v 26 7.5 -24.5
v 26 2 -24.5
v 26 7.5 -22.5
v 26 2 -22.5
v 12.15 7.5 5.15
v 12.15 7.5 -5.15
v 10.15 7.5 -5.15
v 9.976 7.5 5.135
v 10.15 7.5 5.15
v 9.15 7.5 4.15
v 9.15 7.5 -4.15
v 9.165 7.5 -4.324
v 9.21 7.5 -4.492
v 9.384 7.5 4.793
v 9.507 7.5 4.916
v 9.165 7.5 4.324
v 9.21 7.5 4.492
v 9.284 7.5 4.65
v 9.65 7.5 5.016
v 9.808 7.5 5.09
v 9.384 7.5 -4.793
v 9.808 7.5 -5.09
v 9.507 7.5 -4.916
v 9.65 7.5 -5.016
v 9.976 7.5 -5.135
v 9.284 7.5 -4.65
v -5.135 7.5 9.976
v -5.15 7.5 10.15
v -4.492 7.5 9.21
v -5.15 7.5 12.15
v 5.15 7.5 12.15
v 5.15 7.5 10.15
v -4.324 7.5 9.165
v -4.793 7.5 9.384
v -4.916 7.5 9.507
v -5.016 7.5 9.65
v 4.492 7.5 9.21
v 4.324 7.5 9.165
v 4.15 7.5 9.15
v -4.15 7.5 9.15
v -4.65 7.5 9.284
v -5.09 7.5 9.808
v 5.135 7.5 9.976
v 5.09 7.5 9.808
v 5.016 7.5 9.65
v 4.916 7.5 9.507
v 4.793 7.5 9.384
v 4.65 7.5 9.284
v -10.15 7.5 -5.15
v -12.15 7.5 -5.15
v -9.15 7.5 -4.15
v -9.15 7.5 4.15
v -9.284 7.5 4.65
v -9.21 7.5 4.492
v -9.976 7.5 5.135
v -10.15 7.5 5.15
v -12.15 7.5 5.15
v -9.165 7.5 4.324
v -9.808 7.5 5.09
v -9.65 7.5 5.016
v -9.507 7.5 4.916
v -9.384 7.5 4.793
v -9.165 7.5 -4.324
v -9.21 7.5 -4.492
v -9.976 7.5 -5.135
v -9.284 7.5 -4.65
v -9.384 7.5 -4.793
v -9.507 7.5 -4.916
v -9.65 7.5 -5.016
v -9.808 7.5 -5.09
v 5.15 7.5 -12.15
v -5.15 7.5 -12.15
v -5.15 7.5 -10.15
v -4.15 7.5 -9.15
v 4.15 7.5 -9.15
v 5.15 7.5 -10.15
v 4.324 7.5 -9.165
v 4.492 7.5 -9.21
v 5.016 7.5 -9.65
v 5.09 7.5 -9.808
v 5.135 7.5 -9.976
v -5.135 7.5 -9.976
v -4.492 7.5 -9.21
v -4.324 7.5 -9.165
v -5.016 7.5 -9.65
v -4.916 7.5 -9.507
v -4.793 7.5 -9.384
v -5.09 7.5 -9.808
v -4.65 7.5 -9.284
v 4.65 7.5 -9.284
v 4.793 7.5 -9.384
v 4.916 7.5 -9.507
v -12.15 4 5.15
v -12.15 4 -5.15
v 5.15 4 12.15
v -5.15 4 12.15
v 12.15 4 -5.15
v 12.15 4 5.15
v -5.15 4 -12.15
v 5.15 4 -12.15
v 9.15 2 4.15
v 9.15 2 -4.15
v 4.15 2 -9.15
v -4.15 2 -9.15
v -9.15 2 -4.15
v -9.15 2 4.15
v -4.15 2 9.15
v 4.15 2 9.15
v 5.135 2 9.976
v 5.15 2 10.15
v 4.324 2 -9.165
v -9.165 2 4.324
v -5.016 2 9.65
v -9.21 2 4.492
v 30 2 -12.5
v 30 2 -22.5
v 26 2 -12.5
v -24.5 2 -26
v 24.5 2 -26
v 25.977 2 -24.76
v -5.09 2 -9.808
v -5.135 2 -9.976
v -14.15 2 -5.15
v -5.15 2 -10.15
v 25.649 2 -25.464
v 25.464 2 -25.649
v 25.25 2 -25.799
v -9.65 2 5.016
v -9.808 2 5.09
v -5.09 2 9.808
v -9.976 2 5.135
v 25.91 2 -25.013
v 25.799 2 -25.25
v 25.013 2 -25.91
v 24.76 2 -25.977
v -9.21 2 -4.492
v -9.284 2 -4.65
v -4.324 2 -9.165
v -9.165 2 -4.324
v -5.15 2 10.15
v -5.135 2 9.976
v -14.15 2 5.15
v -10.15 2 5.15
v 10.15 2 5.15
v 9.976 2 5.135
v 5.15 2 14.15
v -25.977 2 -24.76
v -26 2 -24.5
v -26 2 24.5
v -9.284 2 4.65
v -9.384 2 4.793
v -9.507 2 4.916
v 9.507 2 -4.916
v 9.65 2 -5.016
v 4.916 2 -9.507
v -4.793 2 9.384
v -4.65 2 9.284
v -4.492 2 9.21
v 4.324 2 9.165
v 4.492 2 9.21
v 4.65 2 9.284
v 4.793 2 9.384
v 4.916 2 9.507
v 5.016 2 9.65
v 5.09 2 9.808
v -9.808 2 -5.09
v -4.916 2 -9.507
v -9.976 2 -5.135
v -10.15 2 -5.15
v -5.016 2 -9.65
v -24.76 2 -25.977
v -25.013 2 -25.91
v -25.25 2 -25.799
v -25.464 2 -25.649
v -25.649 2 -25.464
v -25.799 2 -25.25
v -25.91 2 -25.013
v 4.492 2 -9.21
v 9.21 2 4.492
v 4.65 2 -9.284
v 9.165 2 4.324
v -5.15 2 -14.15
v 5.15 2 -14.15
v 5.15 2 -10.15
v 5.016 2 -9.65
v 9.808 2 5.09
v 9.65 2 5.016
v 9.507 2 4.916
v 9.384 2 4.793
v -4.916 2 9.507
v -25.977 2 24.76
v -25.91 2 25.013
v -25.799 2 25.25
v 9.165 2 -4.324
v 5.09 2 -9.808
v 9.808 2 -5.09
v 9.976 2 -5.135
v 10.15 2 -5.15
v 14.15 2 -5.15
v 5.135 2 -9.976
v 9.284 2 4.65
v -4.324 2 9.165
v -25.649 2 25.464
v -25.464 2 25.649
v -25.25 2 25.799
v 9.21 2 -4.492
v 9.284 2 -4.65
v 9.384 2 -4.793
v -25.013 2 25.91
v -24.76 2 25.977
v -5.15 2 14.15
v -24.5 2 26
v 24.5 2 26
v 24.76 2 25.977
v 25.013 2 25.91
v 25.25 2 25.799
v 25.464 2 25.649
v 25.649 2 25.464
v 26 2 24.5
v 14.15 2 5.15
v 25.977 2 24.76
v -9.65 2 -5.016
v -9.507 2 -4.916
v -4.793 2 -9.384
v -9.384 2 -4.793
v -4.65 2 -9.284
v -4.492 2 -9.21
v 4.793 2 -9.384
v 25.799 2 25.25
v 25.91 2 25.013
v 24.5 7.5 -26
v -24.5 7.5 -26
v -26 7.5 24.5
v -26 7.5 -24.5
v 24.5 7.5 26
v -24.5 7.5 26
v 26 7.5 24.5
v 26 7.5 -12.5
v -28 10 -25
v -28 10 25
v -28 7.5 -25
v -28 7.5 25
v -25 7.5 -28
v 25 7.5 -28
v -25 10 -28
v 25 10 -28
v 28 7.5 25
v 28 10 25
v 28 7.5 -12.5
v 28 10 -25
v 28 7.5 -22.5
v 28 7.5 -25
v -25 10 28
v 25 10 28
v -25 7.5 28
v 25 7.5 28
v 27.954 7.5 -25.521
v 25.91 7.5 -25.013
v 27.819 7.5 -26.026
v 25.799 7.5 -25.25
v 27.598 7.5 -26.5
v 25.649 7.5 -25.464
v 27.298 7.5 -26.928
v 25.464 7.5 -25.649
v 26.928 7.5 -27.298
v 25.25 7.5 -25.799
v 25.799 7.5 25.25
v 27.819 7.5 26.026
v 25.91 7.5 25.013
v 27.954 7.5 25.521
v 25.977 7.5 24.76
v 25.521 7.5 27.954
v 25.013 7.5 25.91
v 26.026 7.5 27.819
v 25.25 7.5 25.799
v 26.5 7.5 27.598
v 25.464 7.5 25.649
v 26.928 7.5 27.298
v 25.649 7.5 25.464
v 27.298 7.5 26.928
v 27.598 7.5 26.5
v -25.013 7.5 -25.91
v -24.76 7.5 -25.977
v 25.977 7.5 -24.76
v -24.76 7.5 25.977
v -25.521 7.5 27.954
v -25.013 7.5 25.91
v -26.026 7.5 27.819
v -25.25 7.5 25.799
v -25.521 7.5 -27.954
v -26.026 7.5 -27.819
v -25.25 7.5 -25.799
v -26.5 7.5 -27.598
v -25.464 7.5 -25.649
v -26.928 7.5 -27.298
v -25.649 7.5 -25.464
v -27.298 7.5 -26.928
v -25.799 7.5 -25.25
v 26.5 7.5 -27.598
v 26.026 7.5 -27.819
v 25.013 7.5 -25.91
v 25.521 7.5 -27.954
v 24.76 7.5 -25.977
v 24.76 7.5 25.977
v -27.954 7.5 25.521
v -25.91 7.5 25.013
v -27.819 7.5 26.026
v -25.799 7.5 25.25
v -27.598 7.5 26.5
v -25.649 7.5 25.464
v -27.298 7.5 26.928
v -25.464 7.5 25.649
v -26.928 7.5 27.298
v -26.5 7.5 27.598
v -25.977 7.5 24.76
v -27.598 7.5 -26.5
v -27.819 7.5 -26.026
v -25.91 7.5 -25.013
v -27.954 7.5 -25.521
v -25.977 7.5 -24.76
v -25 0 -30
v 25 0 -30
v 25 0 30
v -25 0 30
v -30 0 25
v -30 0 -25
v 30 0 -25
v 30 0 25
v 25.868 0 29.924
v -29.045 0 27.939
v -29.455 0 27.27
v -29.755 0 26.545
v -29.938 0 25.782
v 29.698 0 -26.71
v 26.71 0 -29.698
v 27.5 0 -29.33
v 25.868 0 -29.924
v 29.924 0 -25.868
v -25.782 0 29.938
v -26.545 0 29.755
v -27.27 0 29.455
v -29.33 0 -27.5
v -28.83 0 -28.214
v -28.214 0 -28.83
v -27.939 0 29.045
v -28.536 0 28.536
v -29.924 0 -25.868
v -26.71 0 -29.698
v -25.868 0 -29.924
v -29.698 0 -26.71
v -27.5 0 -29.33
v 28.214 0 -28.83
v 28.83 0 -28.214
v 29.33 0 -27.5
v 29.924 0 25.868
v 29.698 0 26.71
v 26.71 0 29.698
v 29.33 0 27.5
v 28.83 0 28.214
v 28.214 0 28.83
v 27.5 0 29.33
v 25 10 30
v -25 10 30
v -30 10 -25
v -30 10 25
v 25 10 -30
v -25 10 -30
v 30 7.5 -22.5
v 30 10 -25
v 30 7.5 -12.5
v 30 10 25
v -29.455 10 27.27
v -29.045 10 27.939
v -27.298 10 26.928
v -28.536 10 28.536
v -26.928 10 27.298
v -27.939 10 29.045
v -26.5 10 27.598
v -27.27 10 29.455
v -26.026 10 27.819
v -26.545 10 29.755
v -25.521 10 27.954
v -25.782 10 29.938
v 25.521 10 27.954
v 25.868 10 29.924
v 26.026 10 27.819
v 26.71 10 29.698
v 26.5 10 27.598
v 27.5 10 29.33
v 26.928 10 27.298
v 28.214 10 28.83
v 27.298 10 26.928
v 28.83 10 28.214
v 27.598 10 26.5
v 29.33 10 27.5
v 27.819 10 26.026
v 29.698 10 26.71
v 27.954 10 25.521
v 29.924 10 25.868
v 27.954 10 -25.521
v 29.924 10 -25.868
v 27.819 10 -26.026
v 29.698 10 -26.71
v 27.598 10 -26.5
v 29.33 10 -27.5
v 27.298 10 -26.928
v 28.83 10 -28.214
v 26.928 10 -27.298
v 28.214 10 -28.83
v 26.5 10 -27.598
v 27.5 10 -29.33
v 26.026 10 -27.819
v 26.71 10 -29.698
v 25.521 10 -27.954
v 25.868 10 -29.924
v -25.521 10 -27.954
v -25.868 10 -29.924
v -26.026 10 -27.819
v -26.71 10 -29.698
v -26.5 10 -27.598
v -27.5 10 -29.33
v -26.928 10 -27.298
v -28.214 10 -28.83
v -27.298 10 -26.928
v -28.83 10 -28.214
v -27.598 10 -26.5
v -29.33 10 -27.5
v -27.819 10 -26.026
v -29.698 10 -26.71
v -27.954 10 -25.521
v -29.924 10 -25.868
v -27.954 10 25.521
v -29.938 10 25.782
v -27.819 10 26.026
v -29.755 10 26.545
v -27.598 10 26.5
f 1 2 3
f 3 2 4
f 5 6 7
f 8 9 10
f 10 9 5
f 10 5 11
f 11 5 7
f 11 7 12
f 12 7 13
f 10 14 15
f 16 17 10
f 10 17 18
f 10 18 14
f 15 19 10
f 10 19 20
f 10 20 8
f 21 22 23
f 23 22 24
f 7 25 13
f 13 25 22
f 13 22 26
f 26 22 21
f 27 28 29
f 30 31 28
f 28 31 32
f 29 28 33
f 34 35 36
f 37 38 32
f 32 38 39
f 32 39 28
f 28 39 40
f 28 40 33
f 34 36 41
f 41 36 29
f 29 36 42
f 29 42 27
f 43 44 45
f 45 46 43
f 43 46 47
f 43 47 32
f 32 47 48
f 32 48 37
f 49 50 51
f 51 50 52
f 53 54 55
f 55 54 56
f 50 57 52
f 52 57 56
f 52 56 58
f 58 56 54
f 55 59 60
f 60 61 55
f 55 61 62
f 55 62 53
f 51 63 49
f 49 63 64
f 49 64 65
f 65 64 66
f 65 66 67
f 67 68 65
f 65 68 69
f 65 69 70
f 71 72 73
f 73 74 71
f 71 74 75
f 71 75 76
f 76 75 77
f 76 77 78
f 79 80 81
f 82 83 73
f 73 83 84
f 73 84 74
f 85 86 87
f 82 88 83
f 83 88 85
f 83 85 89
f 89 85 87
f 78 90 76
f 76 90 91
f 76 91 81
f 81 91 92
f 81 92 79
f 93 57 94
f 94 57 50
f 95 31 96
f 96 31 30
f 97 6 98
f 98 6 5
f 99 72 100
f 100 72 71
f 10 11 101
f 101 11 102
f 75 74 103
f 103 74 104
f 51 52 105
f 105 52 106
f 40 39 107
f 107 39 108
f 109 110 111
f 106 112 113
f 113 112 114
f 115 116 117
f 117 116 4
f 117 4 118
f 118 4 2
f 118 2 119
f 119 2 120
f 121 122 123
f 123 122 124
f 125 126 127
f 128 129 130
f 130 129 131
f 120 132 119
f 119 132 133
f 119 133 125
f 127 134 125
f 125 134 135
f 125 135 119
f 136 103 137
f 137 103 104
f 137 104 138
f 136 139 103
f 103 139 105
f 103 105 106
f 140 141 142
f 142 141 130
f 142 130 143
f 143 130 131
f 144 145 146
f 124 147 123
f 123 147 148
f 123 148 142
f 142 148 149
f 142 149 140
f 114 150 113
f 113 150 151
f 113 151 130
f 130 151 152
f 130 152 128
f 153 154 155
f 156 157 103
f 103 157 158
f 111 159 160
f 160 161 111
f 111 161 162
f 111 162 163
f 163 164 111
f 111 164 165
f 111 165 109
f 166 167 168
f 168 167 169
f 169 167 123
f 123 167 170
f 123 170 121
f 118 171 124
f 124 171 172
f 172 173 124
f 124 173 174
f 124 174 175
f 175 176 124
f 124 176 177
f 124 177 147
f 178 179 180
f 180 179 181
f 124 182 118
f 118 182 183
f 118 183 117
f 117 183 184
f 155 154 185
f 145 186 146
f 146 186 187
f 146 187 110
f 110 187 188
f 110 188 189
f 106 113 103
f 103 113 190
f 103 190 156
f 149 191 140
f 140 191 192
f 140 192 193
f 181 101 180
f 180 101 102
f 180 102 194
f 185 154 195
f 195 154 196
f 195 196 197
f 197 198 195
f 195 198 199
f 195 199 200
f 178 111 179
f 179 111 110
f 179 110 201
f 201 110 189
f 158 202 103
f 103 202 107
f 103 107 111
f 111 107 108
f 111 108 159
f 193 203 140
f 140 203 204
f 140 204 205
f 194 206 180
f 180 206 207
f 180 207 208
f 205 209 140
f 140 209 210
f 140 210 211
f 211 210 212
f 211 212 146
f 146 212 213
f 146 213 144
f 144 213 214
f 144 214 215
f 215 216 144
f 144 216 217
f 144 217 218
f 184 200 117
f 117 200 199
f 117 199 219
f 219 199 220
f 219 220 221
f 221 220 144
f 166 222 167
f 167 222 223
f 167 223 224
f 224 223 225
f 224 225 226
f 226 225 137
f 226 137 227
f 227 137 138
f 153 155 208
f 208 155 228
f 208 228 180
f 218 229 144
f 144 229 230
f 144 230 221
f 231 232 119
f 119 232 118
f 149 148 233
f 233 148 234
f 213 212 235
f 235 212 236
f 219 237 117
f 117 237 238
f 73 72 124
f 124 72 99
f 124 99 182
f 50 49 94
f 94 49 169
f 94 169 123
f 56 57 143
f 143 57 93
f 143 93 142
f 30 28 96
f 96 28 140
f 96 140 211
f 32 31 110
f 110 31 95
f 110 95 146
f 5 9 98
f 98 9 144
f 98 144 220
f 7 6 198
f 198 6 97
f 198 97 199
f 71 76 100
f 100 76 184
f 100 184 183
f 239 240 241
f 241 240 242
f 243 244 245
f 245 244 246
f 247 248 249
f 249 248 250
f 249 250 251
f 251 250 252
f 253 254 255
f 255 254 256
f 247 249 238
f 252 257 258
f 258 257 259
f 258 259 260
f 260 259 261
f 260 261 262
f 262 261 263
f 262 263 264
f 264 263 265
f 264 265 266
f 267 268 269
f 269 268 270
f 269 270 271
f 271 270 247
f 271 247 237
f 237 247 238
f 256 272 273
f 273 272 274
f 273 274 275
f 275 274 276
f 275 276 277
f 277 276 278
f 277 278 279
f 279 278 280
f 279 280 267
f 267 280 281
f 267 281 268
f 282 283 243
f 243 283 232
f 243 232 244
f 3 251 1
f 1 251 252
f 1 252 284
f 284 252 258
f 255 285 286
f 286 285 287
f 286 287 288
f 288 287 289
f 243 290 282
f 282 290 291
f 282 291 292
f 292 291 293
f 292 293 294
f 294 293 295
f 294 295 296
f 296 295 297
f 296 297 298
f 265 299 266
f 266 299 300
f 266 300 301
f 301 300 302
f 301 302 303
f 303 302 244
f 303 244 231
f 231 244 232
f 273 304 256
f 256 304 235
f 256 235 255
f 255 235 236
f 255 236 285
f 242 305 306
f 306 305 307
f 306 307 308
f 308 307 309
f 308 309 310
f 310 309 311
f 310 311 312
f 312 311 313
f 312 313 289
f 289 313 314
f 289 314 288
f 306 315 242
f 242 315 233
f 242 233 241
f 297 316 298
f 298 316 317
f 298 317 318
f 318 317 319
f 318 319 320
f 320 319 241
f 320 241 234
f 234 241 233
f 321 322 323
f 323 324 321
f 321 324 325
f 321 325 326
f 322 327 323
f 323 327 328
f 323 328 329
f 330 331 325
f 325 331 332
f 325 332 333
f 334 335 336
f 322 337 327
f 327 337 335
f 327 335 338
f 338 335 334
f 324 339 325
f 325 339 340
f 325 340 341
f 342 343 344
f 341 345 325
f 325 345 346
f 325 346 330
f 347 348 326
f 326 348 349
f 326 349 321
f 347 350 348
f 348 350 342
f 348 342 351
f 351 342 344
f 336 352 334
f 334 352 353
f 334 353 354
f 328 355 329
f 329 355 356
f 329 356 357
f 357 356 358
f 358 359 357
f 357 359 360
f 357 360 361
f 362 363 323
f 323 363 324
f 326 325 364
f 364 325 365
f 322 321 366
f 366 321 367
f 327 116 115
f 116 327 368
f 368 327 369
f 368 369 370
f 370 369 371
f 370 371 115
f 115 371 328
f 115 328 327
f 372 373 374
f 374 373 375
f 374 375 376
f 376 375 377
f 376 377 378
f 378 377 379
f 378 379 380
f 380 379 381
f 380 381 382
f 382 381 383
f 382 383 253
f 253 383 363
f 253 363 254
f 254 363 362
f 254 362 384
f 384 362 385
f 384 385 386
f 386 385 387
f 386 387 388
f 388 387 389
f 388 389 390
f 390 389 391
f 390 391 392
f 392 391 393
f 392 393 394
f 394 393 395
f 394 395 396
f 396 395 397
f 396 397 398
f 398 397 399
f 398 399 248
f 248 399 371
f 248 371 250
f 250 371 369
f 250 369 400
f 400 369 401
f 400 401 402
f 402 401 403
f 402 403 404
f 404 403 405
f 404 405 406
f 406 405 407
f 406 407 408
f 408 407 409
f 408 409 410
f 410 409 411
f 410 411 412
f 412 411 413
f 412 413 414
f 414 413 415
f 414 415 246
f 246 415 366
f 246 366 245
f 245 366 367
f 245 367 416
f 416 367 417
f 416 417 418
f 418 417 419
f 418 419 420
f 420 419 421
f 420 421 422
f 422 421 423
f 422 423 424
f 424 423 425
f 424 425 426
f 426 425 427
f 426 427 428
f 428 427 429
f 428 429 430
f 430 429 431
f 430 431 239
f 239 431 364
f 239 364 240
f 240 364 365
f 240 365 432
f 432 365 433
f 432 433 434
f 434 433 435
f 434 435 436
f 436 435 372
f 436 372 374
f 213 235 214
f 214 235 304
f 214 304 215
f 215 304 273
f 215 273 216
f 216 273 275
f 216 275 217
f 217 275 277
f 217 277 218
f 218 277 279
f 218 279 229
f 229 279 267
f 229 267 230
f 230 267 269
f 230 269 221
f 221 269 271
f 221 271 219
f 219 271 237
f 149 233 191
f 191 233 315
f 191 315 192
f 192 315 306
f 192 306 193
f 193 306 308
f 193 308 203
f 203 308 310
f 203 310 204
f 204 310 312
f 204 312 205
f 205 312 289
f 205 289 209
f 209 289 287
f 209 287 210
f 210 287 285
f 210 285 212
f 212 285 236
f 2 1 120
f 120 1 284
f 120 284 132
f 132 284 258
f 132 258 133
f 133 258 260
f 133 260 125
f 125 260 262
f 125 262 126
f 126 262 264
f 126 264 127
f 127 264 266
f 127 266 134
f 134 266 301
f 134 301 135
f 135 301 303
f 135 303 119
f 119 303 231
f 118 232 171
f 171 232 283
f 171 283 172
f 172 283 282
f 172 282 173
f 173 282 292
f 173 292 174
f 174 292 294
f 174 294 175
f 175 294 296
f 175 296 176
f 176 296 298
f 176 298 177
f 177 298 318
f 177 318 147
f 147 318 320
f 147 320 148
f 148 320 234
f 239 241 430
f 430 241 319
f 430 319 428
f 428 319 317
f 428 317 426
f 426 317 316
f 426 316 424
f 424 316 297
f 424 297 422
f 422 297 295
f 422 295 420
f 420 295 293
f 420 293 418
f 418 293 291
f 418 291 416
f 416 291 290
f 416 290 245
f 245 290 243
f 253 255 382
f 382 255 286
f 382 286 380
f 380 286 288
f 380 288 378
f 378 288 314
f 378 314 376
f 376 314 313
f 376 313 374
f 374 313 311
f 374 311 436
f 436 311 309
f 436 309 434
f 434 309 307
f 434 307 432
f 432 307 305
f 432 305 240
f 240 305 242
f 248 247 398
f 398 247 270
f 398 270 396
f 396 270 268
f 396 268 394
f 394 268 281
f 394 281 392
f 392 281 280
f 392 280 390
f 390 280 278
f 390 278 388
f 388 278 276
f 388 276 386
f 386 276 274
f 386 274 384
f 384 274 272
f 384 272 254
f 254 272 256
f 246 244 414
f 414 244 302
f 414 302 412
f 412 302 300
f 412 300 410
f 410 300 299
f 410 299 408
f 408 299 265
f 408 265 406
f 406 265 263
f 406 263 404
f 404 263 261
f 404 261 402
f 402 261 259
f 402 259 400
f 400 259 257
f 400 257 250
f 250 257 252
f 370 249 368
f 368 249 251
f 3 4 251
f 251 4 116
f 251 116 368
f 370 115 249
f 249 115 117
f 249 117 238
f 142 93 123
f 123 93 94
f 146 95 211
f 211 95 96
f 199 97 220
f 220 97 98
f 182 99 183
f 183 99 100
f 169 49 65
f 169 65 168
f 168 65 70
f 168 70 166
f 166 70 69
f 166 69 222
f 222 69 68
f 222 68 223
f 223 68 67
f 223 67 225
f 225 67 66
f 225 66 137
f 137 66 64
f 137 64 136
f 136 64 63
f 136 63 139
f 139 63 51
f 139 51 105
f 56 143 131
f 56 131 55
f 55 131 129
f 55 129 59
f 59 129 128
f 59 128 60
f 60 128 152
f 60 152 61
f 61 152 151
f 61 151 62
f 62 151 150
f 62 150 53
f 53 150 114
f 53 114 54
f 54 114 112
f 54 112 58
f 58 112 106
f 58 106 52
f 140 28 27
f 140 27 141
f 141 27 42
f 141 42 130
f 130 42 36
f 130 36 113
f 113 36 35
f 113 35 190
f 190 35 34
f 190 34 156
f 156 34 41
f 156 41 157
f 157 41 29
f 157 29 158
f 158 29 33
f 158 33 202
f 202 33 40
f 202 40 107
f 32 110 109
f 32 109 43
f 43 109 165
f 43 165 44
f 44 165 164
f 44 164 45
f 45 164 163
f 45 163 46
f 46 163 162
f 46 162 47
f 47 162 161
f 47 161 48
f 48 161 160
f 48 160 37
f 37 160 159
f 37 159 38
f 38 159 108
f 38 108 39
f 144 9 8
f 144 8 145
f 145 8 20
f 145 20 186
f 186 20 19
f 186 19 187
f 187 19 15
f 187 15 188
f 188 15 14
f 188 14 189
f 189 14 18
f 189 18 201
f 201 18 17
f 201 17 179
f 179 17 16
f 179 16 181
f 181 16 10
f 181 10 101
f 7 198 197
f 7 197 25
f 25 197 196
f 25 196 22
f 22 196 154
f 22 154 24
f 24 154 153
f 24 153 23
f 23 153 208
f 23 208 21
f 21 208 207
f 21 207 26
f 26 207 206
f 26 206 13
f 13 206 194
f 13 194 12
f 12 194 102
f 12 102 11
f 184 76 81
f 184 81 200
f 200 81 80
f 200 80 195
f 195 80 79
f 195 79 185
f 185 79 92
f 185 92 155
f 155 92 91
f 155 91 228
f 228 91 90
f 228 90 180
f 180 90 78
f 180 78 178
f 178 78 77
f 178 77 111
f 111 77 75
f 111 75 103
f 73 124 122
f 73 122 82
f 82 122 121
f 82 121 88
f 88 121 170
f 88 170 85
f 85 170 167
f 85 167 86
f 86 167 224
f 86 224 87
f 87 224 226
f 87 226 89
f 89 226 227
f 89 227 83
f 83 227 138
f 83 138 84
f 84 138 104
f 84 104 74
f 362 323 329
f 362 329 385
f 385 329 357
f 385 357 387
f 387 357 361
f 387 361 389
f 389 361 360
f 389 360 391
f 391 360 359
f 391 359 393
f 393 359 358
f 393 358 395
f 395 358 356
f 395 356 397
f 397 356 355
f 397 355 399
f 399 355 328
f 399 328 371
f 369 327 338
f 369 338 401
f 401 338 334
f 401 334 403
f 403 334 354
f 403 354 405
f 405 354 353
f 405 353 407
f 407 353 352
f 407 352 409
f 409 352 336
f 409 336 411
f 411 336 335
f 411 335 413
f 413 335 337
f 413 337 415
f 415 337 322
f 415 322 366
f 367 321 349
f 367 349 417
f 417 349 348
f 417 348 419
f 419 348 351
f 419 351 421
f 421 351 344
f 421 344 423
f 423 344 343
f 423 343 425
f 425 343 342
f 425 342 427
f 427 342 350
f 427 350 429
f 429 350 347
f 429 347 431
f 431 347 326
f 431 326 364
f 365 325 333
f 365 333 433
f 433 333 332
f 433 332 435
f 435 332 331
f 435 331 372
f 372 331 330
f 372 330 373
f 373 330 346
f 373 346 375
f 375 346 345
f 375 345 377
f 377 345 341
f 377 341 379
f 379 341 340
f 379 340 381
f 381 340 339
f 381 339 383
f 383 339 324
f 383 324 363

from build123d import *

# Parameters (mm, degrees)
ESBO_O1_W                = 60
ESBO_O1_H                = 60
BASE_DEPTH               = 2
ESBO_O3_W                = 24.3
ESBO_O3_H                = 24.3
ESBO_O3_W_2              = 18.3
ESBO_O3_H_2              = 18.3
ENCAIXES_DA_ARVORE_DEPTH = 5.5
ESBO_O4_W                = 60
ESBO_O4_H                = 60
ESBO_O4_W_2              = 52
ESBO_O4_H_2              = 52
PAREDES_DEPTH            = 8
ESBO_O5_W                = 7
ESBO_O5_H                = 7
CORTE_DOS_ENCAIXE_DEPTH  = 5.5
ESBO_O6_W                = 56
ESBO_O6_H                = 56
ESBO_O6_W_2              = 52
ESBO_O6_H_2              = 52
CORTE_EXTRUS_O2_DEPTH    = 2.5
FILETE5_R                = 1.5
FILETE6_R                = 3
ESBO_O7_W                = 10
ESBO_O7_H                = 5.5
CORTE_EXTRUS_O3_DEPTH    = 65.311740763
CHANFRO2_SIZE            = 2
FILETE19_R               = 1
FILETE20_R               = 5


with BuildPart() as part:
    # Esboço1 → Base (new body)
    with BuildSketch(Plane(origin=(0, 0, 0), x_dir=(1, 0, 0), z_dir=(0, 1, 0))):
        Rectangle(ESBO_O1_W, ESBO_O1_H)
    extrude(amount=BASE_DEPTH)

    # Esboço3 → Encaixes da Arvore (add)
    with BuildSketch(Plane(origin=(0, 2, 0), x_dir=(1, 0, 0), z_dir=(0, 1, 0))):
        Rectangle(ESBO_O3_W, ESBO_O3_H)
        Rectangle(ESBO_O3_W_2, ESBO_O3_H_2, mode=Mode.SUBTRACT)
    extrude(amount=ENCAIXES_DA_ARVORE_DEPTH)

    # Esboço4 → Paredes (add)
    with BuildSketch(Plane(origin=(0, 2, 0), x_dir=(1, 0, 0), z_dir=(0, 1, 0))):
        Rectangle(ESBO_O4_W, ESBO_O4_H)
        Rectangle(ESBO_O4_W_2, ESBO_O4_H_2, mode=Mode.SUBTRACT)
    extrude(amount=PAREDES_DEPTH)

    # Esboço5 → Corte dos Encaixe (cut)
    with BuildSketch(Plane(origin=(0, 7.5, 0), x_dir=(1, 0, 0), z_dir=(0, 1, 0))):
        with Locations((8.65, 8.65)):
            Rectangle(ESBO_O5_W, ESBO_O5_H)
        with Locations((-8.65, 8.65)):
            Rectangle(ESBO_O5_W, ESBO_O5_H)
        with Locations((8.65, -8.65)):
            Rectangle(ESBO_O5_W, ESBO_O5_H)
        with Locations((-8.65, -8.65)):
            Rectangle(ESBO_O5_W, ESBO_O5_H)
    extrude(amount=-CORTE_DOS_ENCAIXE_DEPTH, mode=Mode.SUBTRACT)

    # Esboço6 → Corte-extrusão2 (cut)
    with BuildSketch(Plane(origin=(0, 10, 0), x_dir=(1, 0, 0), z_dir=(0, 1, 0))):
        Rectangle(ESBO_O6_W, ESBO_O6_H)
        Rectangle(ESBO_O6_W_2, ESBO_O6_H_2, mode=Mode.SUBTRACT)
    extrude(amount=-CORTE_EXTRUS_O2_DEPTH, mode=Mode.SUBTRACT)

    # Filete5
    filete5_edges = [part.edges().sort_by_distance(p)[0] for p in [
        (26, 4.75, 26),
        (26, 4.75, -26),
        (-26, 4.75, 26),
        (-26, 4.75, -26),
    ]]
    fillet(filete5_edges, radius=FILETE5_R)

    # Filete6
    filete6_edges = [part.edges().sort_by_distance(p)[0] for p in [
        (-28, 8.75, 28),
        (-28, 8.75, -28),
        (28, 8.75, -28),
        (28, 8.75, 28),
    ]]
    fillet(filete6_edges, radius=FILETE6_R)

    # Esboço7 → Corte-extrusão3 (cut, through all)
    with BuildSketch(Plane.ZY.offset(-26)):
        with Locations((-17.5, 4.75)):
            Rectangle(ESBO_O7_W, ESBO_O7_H)
    extrude(amount=-CORTE_EXTRUS_O3_DEPTH, mode=Mode.SUBTRACT)

    # Chanfro2
    chanfro2_edges = [part.edges().sort_by_distance(p)[0] for p in [
        (-12.15, 2, 0),
        (0, 2, -12.15),
        (12.15, 2, 0),
        (0, 2, 12.15),
    ]]
    chamfer(chanfro2_edges, length=CHANFRO2_SIZE)

    # Filete19
    filete19_edges = [part.edges().sort_by_distance(p)[0] for p in [
        (9.15, 4.75, -5.15),
        (5.15, 4.75, -9.15),
        (5.15, 4.75, 9.15),
        (9.15, 4.75, 5.15),
        (-9.15, 4.75, 5.15),
        (-5.15, 4.75, 9.15),
        (-5.15, 4.75, -9.15),
        (-9.15, 4.75, -5.15),
    ]]
    fillet(filete19_edges, radius=FILETE19_R)

    # Filete20
    filete20_edges = [part.edges().sort_by_distance(p)[0] for p in [
        (30, 5, 30),
        (-30, 5, 30),
        (-30, 5, -30),
        (30, 5, -30),
    ]]
    fillet(filete20_edges, radius=FILETE20_R)


solid = part.part
